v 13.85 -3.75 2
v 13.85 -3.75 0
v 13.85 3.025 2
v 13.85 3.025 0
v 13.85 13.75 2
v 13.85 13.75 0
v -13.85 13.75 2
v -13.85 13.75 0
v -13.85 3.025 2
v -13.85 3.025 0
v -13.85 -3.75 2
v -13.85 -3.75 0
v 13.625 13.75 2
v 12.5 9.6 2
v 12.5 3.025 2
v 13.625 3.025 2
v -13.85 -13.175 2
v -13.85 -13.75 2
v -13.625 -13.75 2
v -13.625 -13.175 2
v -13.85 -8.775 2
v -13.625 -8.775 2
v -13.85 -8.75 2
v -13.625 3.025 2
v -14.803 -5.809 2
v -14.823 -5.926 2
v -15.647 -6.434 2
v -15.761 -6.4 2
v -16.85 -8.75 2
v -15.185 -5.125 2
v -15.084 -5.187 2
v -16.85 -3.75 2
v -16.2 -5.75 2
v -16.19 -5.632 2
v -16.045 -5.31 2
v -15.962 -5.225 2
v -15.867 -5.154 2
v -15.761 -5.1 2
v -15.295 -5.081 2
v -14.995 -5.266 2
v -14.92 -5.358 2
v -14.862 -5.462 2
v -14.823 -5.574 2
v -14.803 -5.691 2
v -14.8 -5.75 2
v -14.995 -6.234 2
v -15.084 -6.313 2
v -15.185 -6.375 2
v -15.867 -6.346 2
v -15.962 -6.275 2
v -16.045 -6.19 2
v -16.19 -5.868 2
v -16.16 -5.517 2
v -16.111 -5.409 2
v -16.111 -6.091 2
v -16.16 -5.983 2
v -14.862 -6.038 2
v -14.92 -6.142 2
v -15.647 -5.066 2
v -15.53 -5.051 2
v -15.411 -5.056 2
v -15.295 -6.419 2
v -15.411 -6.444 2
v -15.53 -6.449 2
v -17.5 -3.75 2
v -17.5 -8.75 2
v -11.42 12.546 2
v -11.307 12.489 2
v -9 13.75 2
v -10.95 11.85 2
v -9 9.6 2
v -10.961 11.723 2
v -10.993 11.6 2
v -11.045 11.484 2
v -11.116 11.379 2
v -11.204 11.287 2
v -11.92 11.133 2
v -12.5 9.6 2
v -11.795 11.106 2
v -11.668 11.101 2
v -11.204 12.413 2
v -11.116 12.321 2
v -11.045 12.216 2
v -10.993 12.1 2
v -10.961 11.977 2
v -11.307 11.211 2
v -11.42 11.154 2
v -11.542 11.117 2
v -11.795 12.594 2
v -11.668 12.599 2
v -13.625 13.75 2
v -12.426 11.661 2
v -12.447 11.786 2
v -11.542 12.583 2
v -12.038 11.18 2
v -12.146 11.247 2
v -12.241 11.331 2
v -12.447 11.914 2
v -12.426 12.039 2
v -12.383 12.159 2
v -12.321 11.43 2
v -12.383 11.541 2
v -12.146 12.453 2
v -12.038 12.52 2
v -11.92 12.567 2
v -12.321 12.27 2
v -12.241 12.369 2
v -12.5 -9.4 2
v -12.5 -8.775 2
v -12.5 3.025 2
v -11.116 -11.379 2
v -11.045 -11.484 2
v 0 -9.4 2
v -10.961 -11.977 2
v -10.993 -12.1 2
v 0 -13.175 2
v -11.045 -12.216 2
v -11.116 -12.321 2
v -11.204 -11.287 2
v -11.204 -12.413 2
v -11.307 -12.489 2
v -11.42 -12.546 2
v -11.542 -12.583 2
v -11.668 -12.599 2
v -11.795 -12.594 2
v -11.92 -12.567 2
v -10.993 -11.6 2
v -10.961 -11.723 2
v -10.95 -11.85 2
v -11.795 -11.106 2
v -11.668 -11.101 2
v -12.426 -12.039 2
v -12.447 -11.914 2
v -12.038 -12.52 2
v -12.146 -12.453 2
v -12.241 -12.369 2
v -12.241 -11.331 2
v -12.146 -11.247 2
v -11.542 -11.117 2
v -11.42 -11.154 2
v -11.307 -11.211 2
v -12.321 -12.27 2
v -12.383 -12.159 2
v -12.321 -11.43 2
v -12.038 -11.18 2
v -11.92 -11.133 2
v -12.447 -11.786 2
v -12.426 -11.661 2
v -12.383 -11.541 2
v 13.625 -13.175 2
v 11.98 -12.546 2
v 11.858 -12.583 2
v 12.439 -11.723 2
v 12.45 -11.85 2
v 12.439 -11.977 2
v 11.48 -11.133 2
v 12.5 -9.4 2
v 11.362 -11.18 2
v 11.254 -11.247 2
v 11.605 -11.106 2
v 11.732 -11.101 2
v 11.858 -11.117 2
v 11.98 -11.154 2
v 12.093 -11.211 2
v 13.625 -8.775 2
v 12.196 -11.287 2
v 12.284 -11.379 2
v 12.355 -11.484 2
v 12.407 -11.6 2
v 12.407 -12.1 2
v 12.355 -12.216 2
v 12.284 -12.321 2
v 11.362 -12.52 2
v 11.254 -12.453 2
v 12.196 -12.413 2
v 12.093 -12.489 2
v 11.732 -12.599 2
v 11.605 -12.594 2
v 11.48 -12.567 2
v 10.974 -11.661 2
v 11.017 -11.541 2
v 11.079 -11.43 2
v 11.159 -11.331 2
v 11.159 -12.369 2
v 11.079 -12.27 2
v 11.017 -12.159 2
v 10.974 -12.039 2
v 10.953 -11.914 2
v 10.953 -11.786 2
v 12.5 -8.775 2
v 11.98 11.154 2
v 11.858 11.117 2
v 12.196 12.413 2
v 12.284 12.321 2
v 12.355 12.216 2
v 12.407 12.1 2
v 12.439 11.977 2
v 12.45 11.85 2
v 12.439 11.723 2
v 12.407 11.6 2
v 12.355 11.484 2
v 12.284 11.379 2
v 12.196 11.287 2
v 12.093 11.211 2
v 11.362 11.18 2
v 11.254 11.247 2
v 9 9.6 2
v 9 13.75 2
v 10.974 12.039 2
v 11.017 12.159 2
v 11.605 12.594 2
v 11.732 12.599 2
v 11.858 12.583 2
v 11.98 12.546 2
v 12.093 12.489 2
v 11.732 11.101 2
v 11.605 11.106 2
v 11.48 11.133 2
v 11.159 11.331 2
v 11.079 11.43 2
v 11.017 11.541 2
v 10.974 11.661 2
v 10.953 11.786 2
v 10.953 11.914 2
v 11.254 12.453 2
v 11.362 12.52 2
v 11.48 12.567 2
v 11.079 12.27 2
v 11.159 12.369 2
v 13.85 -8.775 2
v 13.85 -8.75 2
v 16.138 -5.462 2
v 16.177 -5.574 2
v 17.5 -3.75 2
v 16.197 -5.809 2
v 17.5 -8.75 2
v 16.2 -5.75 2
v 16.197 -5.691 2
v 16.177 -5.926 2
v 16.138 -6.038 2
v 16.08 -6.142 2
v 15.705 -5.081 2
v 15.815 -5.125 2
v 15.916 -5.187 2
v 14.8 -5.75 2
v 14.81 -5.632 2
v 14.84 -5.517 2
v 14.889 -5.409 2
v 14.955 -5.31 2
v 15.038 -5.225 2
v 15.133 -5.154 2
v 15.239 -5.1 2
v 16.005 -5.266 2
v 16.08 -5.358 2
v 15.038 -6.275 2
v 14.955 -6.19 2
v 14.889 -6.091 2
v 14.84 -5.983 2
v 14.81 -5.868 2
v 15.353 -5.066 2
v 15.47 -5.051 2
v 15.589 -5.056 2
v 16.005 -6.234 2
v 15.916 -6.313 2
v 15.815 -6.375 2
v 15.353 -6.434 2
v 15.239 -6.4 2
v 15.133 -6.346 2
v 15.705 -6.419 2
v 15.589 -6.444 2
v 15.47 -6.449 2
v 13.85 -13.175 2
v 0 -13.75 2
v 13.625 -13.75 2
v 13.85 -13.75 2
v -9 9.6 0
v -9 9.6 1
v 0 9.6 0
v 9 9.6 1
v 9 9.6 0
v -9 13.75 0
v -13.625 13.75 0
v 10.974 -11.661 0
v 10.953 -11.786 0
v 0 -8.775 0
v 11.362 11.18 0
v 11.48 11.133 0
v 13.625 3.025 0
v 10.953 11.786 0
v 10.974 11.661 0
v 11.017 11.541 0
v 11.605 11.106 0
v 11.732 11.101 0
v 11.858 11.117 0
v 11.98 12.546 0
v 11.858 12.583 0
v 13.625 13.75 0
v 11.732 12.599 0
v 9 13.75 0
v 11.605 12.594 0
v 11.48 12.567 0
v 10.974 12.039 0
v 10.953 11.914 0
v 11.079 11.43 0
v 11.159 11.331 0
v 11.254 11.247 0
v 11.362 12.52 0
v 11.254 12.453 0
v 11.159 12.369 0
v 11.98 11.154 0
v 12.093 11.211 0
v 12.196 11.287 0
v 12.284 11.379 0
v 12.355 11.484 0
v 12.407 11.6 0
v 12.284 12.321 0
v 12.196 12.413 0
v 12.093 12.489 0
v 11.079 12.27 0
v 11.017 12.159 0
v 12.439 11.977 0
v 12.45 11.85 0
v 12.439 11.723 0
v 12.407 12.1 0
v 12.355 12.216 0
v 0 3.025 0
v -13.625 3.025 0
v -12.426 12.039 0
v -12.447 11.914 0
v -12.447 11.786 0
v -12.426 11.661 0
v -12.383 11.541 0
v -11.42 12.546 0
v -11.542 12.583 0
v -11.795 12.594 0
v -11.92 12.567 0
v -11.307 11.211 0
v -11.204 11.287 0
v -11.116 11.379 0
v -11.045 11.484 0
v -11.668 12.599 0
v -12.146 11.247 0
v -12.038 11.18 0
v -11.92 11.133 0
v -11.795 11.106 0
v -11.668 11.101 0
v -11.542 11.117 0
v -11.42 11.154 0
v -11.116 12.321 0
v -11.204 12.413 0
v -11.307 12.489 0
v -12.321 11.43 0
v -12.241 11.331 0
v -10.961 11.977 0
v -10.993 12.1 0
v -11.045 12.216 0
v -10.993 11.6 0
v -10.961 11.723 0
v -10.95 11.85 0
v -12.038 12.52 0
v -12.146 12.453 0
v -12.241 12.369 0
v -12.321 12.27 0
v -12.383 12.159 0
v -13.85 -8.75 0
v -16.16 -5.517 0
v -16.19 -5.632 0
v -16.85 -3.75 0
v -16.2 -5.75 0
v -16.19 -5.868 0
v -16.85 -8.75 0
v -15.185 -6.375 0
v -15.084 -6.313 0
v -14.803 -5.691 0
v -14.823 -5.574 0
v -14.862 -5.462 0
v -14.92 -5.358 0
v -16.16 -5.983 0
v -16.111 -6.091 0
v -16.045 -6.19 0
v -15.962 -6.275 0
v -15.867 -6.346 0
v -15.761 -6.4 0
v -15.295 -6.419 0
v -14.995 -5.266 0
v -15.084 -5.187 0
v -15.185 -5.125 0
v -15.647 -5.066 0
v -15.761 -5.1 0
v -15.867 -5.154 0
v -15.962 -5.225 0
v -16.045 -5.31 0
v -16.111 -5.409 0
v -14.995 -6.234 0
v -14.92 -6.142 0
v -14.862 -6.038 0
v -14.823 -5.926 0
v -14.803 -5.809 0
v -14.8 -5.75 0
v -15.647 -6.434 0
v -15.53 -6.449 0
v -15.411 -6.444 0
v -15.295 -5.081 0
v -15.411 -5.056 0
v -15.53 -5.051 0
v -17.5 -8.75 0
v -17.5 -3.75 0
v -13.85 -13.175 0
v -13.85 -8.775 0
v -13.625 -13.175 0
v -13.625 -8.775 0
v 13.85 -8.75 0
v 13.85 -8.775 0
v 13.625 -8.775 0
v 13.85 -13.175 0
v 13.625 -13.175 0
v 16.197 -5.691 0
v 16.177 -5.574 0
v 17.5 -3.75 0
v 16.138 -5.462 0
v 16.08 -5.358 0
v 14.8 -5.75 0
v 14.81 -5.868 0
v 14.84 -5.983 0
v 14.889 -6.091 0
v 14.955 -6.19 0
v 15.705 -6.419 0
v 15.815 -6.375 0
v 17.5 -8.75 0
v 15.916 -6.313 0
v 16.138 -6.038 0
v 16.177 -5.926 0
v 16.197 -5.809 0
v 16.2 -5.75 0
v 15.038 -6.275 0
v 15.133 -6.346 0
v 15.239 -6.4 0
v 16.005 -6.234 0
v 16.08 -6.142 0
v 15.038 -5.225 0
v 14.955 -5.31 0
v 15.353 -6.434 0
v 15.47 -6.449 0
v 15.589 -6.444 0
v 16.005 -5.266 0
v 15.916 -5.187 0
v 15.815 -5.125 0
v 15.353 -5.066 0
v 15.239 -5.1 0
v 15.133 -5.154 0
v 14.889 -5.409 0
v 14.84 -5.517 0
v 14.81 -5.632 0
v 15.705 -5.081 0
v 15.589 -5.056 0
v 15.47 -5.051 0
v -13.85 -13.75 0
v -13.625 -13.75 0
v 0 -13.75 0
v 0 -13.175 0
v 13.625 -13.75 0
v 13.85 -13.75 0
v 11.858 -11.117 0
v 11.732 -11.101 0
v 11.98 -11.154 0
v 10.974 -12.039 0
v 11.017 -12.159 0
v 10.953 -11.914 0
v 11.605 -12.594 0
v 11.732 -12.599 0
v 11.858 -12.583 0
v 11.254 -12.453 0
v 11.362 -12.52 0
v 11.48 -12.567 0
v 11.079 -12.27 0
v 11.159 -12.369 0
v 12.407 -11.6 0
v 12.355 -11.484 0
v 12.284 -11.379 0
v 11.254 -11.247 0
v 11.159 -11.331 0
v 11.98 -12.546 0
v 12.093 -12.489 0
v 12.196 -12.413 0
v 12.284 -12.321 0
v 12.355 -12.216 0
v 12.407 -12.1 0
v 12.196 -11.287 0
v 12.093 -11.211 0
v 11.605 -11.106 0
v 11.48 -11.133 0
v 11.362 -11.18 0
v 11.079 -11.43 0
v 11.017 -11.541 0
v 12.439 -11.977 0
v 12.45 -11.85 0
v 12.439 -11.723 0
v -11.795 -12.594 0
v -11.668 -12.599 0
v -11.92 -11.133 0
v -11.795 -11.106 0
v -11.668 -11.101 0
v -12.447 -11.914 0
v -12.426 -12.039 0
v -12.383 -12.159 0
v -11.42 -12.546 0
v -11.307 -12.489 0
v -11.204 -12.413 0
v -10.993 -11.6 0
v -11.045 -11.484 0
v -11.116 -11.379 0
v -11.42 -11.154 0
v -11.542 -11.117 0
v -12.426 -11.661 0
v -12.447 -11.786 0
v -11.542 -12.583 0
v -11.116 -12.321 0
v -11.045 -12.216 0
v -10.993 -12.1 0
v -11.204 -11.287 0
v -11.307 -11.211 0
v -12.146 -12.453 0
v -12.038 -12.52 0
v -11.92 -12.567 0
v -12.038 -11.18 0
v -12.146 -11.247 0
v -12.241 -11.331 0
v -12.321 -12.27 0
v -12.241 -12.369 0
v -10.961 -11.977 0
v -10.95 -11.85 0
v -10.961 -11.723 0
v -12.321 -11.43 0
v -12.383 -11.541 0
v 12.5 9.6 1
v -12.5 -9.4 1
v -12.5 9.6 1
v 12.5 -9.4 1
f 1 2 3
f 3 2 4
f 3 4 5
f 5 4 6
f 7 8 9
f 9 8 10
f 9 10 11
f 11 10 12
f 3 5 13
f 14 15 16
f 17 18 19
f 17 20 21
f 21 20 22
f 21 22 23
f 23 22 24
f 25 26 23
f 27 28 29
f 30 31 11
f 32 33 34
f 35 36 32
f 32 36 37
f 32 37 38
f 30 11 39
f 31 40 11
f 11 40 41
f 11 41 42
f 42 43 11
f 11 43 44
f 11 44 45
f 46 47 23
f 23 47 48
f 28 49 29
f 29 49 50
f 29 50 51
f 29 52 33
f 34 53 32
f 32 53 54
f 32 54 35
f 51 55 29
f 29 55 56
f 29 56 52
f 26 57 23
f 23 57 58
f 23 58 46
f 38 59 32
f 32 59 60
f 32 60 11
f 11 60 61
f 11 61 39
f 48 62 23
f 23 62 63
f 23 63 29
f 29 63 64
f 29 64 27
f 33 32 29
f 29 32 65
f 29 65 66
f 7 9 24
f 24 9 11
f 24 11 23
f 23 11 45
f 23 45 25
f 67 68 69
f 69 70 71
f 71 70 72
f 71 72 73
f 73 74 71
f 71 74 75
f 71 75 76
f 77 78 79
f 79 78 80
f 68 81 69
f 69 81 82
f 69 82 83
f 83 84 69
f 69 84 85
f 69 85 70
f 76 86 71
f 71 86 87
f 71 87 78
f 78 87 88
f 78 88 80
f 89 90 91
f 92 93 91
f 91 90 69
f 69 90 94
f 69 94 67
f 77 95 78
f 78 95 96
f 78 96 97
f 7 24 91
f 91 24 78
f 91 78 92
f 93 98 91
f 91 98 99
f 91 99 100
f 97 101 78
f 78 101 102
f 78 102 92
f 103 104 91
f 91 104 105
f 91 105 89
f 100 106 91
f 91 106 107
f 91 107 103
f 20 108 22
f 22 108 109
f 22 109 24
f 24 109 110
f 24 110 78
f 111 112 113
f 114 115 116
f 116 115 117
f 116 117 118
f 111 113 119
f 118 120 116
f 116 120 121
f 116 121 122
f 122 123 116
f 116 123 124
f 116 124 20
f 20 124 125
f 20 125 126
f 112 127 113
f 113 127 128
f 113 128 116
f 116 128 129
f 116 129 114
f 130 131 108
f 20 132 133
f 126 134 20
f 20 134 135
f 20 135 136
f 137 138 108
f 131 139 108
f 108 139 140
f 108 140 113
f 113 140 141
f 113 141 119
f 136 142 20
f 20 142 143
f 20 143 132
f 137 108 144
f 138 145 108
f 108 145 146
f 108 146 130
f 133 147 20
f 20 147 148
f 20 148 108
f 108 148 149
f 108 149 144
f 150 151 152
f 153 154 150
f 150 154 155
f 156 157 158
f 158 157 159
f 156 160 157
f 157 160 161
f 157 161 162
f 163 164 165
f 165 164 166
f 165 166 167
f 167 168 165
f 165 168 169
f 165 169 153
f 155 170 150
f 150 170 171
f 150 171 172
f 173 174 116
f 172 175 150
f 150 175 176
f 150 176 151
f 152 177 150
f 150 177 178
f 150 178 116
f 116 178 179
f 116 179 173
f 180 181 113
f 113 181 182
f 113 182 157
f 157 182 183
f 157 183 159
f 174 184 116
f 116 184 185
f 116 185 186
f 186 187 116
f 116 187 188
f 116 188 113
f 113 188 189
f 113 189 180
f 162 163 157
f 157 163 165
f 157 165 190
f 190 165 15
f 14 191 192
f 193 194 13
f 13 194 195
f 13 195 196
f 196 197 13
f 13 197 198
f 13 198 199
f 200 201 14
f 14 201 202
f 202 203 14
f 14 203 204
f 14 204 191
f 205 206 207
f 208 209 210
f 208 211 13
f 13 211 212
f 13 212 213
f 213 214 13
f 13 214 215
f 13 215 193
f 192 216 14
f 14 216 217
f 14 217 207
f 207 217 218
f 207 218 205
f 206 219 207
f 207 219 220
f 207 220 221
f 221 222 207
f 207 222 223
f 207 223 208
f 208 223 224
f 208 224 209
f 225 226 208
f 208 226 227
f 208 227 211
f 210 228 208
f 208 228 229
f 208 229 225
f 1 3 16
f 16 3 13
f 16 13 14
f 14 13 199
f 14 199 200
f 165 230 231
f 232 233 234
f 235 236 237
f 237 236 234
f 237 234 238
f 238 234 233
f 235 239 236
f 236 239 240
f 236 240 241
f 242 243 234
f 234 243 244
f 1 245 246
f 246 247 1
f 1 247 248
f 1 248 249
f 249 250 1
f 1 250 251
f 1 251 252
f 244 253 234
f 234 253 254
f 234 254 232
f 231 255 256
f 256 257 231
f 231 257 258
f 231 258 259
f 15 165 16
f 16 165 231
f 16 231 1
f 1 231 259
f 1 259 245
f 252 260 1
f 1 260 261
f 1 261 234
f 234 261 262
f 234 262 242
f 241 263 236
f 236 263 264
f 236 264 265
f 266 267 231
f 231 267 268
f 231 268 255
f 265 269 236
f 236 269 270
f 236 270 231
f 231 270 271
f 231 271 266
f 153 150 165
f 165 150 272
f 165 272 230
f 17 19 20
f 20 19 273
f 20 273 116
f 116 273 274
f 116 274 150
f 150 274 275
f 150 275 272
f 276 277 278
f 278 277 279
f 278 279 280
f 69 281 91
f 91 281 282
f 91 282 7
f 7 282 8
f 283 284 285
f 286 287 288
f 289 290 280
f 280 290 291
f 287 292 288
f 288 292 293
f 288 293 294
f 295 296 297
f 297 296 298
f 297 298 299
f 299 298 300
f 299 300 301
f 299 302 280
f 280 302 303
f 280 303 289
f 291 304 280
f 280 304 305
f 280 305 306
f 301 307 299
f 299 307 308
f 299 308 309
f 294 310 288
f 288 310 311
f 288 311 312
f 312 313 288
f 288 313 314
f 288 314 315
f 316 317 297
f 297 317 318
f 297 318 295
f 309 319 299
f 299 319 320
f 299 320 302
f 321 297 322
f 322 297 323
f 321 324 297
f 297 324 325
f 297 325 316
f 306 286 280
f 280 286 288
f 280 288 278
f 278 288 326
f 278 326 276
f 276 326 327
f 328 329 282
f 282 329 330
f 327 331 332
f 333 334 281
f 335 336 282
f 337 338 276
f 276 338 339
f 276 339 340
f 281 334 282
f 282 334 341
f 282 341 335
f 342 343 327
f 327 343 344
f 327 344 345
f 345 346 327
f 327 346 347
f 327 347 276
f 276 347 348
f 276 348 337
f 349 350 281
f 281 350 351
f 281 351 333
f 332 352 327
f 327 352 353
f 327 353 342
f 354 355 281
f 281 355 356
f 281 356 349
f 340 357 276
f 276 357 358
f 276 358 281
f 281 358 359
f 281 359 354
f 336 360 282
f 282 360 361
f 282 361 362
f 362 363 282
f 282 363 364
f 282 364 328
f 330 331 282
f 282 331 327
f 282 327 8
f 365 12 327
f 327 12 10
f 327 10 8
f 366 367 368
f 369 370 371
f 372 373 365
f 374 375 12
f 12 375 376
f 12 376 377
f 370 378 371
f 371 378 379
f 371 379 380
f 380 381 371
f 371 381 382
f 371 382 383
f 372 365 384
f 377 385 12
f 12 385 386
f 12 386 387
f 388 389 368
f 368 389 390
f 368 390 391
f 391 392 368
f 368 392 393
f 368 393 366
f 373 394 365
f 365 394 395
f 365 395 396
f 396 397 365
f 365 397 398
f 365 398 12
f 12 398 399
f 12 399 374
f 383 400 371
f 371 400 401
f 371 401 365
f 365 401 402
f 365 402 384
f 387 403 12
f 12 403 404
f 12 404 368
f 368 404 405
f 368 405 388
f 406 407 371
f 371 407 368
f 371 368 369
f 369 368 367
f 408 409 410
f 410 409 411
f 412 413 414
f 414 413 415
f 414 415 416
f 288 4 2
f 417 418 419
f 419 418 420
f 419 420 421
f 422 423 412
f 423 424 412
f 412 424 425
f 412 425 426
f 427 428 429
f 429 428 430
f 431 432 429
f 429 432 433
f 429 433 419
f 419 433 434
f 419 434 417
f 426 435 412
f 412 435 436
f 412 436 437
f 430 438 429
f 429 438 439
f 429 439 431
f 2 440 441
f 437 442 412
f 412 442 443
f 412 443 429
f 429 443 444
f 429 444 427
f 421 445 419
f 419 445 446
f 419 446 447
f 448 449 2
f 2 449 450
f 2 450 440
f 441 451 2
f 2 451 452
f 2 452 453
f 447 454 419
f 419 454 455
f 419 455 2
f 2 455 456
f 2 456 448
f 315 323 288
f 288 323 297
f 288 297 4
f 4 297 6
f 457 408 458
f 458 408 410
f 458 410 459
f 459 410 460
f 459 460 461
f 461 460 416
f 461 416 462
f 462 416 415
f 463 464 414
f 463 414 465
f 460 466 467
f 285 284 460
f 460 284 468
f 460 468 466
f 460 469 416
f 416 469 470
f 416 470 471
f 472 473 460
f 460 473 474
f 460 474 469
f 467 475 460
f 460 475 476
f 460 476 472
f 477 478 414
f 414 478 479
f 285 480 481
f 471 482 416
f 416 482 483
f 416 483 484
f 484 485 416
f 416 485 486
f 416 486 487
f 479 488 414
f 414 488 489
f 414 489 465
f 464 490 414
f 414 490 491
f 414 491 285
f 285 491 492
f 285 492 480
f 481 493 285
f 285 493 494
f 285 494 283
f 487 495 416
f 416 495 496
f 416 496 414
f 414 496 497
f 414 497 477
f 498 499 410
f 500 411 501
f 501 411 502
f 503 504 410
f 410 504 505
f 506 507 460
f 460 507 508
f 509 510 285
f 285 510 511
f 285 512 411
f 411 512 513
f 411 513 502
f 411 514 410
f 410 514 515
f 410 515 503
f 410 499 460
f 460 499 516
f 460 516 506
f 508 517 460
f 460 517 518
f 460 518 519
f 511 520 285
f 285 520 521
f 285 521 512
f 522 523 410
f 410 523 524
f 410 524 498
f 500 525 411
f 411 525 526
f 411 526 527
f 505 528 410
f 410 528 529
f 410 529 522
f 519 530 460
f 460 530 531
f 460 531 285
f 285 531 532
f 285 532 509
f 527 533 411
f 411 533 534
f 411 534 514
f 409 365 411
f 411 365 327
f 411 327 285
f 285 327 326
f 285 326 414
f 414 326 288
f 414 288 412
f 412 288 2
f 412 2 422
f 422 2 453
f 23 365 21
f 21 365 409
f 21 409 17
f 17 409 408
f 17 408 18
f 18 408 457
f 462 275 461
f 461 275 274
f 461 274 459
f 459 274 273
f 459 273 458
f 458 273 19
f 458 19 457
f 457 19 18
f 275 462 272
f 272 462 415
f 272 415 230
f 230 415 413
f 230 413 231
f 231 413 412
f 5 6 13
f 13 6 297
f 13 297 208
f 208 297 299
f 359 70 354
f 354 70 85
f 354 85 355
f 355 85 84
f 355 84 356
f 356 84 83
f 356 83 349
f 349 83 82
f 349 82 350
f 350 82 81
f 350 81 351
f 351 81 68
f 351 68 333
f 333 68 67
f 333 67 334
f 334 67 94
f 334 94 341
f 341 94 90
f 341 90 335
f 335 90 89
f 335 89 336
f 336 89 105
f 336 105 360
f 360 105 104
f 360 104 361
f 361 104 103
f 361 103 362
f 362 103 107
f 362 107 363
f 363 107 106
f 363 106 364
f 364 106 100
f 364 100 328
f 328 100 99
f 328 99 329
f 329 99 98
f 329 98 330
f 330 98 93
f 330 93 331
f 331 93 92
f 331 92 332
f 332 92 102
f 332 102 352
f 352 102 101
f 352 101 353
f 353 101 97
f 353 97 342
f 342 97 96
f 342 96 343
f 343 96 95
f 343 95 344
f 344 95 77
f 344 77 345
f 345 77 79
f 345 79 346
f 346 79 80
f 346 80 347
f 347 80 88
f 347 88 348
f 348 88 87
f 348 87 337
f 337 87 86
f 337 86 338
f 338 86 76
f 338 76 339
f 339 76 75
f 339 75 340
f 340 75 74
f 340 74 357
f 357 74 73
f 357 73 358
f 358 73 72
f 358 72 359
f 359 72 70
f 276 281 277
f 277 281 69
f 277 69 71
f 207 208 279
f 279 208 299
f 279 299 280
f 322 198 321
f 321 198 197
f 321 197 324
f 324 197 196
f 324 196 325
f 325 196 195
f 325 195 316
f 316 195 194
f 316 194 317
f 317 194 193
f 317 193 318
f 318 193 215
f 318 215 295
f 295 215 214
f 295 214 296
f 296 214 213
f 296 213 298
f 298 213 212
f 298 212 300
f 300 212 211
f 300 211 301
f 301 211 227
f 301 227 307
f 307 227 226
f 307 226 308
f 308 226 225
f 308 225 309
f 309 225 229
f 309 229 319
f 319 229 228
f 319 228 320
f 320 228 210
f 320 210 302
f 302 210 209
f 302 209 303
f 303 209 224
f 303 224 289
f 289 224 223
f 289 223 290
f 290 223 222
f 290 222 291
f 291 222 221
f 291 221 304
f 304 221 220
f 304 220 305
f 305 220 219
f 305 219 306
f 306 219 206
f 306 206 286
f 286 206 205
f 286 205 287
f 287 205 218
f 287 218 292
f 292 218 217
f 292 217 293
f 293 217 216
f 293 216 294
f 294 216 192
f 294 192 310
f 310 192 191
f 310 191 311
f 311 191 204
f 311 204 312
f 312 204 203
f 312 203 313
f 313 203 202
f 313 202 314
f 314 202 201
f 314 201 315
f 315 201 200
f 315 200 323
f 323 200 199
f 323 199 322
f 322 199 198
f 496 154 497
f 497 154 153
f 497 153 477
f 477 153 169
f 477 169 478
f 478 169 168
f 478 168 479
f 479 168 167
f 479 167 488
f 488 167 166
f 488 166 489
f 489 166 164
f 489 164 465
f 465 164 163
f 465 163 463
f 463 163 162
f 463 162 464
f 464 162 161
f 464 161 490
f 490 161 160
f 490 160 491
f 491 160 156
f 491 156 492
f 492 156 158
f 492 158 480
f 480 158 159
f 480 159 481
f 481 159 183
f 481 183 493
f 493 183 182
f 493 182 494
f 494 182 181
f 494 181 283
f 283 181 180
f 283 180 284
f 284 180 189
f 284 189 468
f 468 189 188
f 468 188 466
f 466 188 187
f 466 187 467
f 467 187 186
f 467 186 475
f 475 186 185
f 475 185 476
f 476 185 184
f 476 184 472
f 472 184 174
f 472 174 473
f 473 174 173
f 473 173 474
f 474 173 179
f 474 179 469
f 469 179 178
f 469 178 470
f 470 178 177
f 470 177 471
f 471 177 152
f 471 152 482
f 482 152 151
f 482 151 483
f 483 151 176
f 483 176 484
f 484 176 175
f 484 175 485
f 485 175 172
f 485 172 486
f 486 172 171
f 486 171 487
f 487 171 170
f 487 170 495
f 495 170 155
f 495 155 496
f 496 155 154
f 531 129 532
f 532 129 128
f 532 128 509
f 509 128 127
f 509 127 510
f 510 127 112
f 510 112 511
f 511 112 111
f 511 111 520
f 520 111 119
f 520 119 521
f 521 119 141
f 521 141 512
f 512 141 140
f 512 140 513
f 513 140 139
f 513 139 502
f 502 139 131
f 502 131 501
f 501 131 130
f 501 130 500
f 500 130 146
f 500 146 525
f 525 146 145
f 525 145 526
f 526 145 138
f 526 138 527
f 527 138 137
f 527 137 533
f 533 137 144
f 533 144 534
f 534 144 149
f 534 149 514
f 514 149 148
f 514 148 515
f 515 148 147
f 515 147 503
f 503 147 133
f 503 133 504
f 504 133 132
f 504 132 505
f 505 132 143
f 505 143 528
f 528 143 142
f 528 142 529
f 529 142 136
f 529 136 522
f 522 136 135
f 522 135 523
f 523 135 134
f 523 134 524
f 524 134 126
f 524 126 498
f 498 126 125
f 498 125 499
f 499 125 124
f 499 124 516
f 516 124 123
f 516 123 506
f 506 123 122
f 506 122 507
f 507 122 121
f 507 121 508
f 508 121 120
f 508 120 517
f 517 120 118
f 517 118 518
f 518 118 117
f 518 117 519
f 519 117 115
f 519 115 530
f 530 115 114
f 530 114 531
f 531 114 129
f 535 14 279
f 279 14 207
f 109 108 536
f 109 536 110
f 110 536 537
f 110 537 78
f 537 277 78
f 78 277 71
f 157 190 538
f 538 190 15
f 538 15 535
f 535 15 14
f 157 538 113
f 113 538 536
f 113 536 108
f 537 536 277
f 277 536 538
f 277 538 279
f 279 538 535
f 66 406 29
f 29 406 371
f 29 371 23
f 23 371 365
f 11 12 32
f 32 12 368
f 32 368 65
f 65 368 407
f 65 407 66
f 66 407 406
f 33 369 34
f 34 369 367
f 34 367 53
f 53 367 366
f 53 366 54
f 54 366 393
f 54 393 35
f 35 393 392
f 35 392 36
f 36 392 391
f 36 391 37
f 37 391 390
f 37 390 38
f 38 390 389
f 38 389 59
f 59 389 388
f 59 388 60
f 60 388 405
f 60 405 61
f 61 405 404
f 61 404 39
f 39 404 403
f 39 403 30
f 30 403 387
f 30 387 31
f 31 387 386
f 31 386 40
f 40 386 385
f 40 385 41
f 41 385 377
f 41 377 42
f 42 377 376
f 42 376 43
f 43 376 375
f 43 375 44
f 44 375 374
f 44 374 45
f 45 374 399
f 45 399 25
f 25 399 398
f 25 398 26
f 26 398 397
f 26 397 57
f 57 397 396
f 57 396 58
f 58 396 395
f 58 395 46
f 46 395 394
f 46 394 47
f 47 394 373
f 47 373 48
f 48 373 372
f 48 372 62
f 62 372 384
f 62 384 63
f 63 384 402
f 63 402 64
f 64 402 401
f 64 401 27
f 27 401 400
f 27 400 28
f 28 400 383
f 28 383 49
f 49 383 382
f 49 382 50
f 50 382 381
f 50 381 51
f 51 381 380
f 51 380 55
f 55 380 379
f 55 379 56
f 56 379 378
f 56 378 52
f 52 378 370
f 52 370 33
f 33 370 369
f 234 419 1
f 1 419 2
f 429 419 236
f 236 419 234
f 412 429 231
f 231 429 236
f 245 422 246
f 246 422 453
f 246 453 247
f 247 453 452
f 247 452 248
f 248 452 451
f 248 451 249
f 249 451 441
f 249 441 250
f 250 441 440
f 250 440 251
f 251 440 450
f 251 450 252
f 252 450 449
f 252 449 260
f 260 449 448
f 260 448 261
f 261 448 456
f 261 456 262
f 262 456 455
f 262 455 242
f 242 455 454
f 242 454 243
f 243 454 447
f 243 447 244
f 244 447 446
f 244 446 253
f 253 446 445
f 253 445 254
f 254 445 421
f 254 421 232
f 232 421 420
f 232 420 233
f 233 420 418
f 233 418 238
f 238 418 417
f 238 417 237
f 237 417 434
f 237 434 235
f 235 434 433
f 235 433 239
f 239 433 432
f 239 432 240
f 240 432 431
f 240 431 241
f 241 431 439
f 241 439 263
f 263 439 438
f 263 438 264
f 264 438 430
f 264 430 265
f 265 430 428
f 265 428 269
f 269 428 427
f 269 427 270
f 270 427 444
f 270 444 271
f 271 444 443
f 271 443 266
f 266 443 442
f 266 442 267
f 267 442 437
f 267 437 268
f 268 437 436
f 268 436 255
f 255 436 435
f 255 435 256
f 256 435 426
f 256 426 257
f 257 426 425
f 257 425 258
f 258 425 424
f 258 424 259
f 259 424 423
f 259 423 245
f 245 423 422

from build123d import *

# Parameters (mm, degrees)
SKETCH_1_W          = 27.7
SKETCH_1_H          = 27.5
EXTRUDE_1_DEPTH     = 2
SKETCH_2_R          = 0.75
SKETCH_2_W          = 18
SKETCH_2_H          = 4.15
CUT_EXTRUDE_1_DEPTH = 20.61848618
SKETCH_2_3_W        = 25
SKETCH_2_3_H        = 19
CUT_EXTRUDE_2_DEPTH = 1
EXTRUDE_START       = -1
SKETCH_3_R          = 0.7
EXTRUDE_2_DEPTH     = 2


with BuildPart() as part:
    # 草图1 → 凸台-拉伸1 (new body)
    with BuildSketch(Plane.XY):
        Rectangle(SKETCH_1_W, SKETCH_1_H)
    extrude(amount=EXTRUDE_1_DEPTH)

    # 草图2 → 切除-拉伸1 (cut, through all)
    with BuildSketch(Plane.XY.offset(2)):
        with Locations((-11.7, 11.85)):
            Circle(SKETCH_2_R)
        with Locations((11.7, 11.85)):
            Circle(SKETCH_2_R)
        with Locations((-11.7, -11.85)):
            Circle(SKETCH_2_R)
        with Locations((11.7, -11.85)):
            Circle(SKETCH_2_R)
        with Locations((0, 11.675)):
            Rectangle(SKETCH_2_W, SKETCH_2_H)
    extrude(amount=-CUT_EXTRUDE_1_DEPTH, mode=Mode.SUBTRACT)

    # 草图2<3> → 切除-拉伸2 (cut)
    with BuildSketch(Plane.XY.offset(2)):
        with Locations((0, 0.1)):
            Rectangle(SKETCH_2_3_W, SKETCH_2_3_H)
    extrude(amount=-CUT_EXTRUDE_2_DEPTH, mode=Mode.SUBTRACT)

    # 草图3 → 凸台-拉伸2 (add)
    # profile 1 of 2: a face of its own
    with BuildSketch(Plane.XY.offset(1).offset(EXTRUDE_START)):
        Polygon((-17.5, -8.75), (-12.5, -8.75), (-12.5, -3.75), (-17.5, -3.75), (-17.5, -4.396520298), align=None)
        with Locations((-15.5, -5.75)):
            Circle(SKETCH_3_R, mode=Mode.SUBTRACT)
    # profile 2 of 2: a face of its own
    with BuildSketch(Plane.XY.offset(1).offset(EXTRUDE_START)):
        Polygon((12.5, -8.75), (17.5, -8.75), (17.5, -4.396520298), (17.5, -3.75), (12.5, -3.75), align=None)
        with Locations((15.5, -5.75)):
            Circle(SKETCH_3_R, mode=Mode.SUBTRACT)
    extrude(amount=EXTRUDE_2_DEPTH)


solid = part.part
